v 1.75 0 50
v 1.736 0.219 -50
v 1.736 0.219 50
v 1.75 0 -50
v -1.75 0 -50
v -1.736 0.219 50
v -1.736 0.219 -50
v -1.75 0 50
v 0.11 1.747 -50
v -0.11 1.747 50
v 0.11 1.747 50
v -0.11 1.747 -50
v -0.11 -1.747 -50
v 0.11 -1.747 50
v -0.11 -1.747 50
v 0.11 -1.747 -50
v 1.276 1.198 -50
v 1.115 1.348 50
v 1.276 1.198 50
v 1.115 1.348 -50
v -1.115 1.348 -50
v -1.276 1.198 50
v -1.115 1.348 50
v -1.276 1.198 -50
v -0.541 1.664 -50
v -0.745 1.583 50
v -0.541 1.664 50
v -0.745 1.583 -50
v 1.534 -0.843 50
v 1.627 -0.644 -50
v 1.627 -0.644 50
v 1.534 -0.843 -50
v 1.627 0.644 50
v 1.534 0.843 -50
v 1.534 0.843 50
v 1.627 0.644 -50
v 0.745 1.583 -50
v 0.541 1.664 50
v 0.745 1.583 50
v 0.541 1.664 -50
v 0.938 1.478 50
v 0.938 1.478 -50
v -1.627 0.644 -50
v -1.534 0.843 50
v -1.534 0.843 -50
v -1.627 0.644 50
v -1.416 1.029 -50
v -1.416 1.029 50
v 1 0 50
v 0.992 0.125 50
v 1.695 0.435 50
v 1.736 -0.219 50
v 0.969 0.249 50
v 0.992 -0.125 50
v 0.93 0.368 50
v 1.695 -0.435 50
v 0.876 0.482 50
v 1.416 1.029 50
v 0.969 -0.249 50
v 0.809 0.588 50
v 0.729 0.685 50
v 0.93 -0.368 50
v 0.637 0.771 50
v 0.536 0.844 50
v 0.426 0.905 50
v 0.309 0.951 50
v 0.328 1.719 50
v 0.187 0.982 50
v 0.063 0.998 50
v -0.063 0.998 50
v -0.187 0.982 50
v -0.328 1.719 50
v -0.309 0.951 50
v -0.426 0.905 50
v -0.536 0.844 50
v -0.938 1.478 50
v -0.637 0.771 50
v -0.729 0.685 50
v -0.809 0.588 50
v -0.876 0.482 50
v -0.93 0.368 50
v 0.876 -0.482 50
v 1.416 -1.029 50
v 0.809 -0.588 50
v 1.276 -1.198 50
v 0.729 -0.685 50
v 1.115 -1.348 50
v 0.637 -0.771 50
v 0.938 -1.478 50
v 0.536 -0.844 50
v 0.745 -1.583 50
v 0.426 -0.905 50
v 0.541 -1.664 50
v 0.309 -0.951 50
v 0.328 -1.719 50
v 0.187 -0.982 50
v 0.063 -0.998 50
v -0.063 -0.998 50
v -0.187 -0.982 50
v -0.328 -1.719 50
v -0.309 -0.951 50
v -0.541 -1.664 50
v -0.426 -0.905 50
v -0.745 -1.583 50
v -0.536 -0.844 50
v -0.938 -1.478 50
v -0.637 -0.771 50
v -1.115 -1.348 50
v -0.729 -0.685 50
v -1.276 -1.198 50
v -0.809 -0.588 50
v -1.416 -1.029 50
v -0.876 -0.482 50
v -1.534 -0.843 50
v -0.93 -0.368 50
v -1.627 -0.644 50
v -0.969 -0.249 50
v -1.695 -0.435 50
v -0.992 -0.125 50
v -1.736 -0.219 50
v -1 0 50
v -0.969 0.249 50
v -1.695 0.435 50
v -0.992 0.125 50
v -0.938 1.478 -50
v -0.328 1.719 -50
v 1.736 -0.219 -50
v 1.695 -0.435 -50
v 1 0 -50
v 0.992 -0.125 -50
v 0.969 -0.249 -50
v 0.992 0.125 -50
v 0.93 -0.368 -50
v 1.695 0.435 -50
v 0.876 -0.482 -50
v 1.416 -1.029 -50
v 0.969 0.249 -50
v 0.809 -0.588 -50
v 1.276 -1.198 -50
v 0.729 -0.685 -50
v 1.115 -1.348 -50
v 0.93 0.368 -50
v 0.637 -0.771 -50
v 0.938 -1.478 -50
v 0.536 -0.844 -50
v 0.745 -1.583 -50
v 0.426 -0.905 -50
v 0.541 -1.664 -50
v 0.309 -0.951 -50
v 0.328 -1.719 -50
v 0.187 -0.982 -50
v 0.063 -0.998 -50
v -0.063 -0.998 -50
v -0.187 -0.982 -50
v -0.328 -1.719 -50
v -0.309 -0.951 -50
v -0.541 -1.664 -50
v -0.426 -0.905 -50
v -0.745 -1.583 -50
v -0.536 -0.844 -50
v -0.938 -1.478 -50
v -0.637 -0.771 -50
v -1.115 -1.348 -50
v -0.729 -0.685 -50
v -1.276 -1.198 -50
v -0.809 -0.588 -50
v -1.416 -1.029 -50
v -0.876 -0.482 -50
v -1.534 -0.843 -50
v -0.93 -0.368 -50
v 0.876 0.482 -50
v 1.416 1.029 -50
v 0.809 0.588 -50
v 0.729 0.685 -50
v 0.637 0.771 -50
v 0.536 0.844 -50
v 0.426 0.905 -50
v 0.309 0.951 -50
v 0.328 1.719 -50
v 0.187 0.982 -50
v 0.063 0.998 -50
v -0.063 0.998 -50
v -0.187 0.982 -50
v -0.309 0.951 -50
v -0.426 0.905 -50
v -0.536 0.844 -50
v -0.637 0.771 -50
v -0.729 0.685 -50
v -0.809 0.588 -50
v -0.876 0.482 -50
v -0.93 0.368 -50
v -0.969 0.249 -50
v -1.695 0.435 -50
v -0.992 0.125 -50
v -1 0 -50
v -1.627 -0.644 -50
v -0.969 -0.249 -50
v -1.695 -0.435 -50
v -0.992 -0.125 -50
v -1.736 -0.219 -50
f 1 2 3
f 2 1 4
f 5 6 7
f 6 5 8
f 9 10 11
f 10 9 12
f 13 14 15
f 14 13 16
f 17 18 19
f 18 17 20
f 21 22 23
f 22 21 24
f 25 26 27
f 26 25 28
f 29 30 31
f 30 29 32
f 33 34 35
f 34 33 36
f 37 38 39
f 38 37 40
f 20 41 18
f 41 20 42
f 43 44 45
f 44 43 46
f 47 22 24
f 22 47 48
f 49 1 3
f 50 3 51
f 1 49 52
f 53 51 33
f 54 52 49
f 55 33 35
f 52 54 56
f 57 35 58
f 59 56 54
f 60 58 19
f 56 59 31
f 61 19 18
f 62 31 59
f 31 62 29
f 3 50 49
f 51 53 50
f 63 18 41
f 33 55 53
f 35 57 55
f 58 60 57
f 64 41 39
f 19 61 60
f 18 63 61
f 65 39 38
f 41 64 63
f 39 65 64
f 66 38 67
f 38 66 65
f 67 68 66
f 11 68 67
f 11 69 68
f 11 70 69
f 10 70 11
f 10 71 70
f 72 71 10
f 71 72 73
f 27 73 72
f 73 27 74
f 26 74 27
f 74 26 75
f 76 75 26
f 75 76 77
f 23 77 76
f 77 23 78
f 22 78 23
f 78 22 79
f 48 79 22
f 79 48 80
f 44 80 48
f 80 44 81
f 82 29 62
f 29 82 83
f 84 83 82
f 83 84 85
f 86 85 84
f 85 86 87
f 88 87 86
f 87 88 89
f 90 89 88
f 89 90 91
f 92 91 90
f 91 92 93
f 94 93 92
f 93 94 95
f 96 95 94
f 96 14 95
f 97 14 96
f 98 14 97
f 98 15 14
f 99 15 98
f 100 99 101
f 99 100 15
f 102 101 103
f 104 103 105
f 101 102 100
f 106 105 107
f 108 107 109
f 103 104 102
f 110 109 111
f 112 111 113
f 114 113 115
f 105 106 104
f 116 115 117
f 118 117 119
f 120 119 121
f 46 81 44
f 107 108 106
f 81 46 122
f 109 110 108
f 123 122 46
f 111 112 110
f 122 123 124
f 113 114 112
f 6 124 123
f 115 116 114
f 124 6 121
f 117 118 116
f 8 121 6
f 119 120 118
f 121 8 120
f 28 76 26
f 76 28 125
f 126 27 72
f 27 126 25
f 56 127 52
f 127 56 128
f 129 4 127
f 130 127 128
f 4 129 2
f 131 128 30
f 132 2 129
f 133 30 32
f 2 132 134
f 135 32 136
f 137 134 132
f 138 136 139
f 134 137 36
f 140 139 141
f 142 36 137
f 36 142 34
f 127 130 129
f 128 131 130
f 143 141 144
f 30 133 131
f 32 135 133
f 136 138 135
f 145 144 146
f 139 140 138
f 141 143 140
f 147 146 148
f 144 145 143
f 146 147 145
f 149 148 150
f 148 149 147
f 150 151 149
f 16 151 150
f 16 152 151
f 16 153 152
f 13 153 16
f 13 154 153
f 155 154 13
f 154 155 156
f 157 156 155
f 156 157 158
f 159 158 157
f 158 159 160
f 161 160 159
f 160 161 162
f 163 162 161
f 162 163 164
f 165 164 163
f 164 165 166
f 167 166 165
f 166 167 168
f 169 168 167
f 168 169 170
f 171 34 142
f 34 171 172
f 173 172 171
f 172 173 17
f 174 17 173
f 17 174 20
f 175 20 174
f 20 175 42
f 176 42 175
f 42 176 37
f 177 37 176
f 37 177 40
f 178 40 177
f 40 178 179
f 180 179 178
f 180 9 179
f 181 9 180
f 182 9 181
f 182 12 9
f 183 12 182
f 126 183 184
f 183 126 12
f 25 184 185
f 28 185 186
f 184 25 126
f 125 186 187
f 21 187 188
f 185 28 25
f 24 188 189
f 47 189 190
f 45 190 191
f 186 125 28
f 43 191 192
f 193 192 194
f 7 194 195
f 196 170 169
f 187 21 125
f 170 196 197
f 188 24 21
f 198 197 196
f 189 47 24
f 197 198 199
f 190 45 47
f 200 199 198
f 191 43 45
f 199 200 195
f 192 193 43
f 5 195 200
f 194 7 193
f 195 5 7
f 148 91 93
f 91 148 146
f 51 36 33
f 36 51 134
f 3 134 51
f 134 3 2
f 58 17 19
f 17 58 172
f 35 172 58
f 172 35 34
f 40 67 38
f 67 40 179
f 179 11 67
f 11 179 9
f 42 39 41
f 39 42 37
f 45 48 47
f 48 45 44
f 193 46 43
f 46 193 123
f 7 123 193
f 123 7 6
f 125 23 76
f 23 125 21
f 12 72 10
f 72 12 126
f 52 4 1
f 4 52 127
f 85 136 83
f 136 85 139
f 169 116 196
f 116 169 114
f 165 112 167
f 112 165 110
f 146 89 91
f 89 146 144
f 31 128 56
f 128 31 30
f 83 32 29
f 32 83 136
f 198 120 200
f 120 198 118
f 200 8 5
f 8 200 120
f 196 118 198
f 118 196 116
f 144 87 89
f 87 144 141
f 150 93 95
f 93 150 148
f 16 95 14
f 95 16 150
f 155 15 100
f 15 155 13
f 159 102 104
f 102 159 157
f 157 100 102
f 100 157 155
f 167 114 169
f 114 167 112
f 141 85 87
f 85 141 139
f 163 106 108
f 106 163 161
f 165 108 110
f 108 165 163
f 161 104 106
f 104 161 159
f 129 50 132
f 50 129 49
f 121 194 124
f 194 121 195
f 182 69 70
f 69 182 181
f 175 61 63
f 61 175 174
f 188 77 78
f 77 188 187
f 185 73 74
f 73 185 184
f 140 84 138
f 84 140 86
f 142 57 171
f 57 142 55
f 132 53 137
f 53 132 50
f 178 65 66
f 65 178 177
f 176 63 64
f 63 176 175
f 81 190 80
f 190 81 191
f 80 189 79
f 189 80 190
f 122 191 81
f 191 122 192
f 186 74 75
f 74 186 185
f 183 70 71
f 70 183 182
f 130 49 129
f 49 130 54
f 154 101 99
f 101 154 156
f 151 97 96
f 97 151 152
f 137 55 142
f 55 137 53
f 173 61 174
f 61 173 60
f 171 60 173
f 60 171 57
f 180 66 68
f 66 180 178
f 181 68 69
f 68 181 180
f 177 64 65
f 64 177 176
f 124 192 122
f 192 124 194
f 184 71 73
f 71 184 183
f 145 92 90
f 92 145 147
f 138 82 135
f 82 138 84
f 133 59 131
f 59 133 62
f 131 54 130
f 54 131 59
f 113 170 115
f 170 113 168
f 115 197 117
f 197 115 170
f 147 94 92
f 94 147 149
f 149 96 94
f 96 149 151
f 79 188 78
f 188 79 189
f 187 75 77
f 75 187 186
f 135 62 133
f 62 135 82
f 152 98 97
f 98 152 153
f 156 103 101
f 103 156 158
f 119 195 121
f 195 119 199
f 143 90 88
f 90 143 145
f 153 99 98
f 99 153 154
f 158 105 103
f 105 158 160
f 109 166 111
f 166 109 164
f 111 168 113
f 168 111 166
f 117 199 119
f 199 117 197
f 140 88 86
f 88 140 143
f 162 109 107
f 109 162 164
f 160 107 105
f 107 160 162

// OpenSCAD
$fn = 50;


difference() {
	union() {
		translate(v = [0, 0, -50.0000000000]) {
			cylinder(h = 100, r = 1.7500000000);
		}
	}
	union() {
		translate(v = [0, 0, -100.0000000000]) {
			cylinder(h = 200, r = 1.0000000000);
		}
	}
}
